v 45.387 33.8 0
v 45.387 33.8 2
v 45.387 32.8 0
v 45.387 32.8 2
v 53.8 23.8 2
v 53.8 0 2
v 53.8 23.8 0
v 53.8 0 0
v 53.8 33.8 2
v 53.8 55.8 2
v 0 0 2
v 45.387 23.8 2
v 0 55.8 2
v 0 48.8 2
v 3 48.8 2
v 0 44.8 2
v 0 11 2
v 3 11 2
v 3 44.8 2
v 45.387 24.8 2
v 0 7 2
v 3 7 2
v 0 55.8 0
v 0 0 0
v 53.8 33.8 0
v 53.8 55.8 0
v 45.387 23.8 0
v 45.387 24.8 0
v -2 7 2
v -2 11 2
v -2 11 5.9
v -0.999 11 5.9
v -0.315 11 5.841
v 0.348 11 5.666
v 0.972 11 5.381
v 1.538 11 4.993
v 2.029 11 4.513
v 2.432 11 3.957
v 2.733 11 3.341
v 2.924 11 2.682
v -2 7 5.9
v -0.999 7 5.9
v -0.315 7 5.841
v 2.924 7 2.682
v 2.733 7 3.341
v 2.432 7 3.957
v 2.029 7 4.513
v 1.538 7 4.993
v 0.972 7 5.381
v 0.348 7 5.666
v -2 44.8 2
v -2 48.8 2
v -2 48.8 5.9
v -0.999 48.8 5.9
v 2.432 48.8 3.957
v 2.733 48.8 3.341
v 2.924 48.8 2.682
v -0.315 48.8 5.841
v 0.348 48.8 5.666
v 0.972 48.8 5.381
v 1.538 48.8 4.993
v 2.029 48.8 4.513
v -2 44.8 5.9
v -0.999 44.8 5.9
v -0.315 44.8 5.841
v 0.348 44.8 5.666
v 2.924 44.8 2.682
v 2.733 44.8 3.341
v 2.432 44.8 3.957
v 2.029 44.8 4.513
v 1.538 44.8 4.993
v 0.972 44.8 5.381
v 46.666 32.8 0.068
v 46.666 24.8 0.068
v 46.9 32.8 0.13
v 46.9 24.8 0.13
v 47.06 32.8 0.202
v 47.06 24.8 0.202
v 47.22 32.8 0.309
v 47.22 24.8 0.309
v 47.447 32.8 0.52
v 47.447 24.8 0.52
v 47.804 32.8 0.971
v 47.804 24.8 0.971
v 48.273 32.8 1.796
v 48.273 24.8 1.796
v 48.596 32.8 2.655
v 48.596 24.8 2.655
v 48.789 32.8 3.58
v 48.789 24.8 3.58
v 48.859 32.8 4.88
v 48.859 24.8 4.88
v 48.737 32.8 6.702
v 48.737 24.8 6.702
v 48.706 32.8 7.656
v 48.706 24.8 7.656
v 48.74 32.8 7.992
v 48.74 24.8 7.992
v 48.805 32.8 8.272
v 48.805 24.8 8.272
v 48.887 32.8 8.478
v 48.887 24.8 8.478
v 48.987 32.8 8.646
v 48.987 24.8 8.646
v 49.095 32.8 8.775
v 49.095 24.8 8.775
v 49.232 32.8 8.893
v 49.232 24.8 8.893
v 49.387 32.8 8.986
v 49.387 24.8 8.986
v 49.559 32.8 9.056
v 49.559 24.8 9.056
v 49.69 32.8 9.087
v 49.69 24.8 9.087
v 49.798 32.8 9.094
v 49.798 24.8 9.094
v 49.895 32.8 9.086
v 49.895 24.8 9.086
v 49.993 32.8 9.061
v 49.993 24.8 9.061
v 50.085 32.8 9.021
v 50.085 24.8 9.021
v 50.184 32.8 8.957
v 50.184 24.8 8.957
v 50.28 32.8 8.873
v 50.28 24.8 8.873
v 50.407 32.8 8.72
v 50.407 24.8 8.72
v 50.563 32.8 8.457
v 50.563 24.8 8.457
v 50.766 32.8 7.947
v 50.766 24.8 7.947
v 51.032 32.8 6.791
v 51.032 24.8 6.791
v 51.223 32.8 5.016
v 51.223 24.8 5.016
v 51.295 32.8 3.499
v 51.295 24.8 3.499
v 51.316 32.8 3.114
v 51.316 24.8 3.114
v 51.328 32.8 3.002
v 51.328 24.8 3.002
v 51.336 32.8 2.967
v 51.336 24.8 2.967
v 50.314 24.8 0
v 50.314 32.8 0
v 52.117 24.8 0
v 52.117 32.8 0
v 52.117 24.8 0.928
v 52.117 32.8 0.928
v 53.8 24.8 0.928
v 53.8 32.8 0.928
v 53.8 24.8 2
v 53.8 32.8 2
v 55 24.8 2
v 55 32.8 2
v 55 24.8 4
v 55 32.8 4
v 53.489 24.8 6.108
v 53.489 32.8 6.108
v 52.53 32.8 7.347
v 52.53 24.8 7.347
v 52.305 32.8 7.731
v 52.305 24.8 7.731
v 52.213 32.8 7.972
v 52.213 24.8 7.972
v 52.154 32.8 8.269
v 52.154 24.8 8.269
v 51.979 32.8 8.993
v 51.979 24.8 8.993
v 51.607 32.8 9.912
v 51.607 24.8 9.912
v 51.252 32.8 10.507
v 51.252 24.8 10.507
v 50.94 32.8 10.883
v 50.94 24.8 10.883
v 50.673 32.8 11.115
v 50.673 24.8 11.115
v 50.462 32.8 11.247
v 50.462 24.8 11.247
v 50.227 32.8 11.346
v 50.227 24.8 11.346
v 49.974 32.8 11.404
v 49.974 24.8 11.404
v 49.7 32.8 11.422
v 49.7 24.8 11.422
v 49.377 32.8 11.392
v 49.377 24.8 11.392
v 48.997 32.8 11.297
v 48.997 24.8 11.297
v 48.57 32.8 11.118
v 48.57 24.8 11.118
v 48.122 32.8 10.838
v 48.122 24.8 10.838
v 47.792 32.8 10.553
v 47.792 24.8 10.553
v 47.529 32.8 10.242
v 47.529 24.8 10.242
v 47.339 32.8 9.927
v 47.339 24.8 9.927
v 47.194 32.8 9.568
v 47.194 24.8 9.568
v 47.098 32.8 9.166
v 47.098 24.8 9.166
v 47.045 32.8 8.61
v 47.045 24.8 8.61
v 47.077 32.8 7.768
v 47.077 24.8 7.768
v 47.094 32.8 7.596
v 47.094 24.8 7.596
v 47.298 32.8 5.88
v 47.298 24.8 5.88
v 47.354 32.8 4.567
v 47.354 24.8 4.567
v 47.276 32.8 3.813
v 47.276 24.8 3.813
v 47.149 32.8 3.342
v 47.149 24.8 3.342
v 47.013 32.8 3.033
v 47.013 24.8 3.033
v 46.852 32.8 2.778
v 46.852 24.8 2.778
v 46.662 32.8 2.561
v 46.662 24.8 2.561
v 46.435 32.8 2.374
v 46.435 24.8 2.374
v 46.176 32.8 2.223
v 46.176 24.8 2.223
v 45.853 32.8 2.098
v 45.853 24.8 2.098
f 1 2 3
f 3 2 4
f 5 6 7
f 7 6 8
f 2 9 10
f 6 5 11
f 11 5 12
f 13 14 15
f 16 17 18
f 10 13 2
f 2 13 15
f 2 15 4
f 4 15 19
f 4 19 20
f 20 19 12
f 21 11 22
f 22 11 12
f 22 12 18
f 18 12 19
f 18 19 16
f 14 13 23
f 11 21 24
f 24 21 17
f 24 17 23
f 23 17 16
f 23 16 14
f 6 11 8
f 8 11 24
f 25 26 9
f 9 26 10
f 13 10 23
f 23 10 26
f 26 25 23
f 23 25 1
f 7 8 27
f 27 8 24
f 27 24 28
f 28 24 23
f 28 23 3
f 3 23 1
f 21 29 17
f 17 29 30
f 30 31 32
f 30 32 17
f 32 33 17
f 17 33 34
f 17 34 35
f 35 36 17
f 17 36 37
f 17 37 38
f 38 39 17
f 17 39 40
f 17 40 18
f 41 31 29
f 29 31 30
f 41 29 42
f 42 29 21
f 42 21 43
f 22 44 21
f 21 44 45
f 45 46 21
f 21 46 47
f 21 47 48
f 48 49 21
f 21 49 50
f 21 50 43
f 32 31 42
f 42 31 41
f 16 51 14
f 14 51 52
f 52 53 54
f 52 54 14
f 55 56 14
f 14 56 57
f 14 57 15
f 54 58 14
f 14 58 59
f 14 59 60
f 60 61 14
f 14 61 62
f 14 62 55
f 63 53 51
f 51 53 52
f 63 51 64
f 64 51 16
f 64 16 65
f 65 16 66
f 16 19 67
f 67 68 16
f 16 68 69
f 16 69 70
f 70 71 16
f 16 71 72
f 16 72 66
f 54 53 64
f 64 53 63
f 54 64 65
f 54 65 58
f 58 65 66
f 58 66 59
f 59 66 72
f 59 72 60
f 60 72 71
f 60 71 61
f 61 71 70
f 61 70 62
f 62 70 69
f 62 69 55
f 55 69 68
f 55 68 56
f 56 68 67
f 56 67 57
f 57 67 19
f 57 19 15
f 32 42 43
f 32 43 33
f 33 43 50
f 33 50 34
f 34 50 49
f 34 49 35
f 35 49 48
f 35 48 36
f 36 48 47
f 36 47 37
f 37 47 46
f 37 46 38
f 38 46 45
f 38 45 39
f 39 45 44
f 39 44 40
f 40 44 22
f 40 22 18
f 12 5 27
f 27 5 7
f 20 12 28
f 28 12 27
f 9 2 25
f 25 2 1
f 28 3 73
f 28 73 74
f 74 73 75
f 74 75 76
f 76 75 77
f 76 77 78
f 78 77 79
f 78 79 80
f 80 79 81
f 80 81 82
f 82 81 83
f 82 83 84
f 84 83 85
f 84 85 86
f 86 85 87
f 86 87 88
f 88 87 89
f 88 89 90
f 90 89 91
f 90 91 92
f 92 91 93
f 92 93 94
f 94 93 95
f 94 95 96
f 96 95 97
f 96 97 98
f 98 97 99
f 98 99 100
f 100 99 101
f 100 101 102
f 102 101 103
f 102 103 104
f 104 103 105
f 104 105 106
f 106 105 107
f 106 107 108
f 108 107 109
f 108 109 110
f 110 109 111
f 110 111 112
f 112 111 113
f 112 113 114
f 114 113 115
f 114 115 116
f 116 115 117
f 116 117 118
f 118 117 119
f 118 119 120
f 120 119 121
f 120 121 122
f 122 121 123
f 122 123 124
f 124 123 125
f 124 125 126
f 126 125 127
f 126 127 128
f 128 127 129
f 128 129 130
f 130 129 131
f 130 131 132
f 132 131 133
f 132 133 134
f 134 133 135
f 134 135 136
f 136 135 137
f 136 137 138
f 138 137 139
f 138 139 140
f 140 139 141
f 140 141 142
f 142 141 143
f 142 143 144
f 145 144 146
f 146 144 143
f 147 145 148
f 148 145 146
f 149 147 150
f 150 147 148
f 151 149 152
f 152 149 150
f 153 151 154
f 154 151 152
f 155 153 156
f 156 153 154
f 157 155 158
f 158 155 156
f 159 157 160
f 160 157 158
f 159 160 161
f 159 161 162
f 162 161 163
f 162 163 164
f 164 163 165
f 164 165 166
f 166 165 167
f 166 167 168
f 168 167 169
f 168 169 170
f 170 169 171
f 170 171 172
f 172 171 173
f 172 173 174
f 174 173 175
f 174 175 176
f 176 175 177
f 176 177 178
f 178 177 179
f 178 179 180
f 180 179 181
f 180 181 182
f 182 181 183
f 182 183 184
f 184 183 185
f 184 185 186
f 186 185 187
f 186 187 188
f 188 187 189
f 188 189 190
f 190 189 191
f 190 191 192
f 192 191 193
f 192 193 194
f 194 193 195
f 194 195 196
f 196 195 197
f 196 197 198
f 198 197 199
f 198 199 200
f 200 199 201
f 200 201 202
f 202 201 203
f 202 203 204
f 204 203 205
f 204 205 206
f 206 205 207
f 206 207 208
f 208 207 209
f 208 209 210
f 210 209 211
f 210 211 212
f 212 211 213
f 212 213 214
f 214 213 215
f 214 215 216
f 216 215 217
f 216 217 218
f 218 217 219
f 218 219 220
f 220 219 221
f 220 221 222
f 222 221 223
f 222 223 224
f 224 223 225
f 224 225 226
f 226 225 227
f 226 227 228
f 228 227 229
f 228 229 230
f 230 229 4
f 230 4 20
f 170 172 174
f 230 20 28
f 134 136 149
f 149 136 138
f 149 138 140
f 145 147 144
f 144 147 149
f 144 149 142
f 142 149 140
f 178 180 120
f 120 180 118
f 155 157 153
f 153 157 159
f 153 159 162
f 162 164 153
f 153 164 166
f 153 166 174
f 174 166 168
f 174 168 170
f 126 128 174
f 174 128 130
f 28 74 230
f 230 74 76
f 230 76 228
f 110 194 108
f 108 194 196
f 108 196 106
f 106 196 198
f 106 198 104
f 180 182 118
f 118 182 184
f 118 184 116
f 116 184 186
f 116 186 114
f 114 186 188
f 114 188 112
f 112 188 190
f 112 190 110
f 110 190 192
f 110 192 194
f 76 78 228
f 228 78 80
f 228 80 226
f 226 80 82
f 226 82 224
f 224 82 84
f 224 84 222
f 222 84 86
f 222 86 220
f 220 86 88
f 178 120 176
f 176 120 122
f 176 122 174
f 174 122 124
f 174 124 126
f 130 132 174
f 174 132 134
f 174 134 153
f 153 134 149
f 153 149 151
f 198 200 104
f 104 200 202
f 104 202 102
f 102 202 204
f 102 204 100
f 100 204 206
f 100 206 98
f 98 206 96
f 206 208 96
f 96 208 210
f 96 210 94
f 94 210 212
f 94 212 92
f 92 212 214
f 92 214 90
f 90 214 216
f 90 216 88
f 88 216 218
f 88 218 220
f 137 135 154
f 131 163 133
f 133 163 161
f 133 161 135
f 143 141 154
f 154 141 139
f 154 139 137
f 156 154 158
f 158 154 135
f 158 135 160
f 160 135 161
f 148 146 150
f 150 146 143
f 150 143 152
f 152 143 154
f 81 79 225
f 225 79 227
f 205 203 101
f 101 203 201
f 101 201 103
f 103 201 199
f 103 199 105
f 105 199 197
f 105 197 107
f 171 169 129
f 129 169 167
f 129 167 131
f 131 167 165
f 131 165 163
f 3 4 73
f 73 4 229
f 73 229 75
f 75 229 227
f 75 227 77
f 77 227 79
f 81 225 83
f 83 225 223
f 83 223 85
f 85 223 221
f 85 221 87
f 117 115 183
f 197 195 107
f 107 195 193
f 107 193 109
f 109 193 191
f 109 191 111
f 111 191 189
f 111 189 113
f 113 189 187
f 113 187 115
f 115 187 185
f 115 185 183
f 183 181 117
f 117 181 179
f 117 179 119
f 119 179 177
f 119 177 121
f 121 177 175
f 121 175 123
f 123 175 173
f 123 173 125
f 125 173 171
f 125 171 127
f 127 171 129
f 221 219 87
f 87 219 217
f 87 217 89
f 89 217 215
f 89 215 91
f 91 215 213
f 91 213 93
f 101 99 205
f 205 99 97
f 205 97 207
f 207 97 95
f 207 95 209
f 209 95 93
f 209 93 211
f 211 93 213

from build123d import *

# Parameters (mm, degrees)
ESQUISSE1_W             = 53.8
ESQUISSE1_H             = 55.8
BOSS_EXTRU_1_DEPTH      = 2
ESQUISSE3_W             = 5
ESQUISSE3_H             = 4
BOSS_EXTRU_2_DEPTH      = 3.9
CONG_1_R                = 4
ESQUISSE4_W             = 8.412600453
ESQUISSE4_H             = 10
ENL_V_MAT_EXTRU_1_DEPTH = 7.8
BOSS_EXTRU_3_START      = 1
BOSS_EXTRU_3_DEPTH      = 8


with BuildPart() as part:
    # Esquisse1 → Boss.-Extru.1 (new body)
    with BuildSketch(Plane.XY):
        with Locations((26.9, 27.9)):
            Rectangle(ESQUISSE1_W, ESQUISSE1_H)
    extrude(amount=BOSS_EXTRU_1_DEPTH)

    # Esquisse3 → Boss.-Extru.2 (add)
    with BuildSketch(Plane.XY.offset(2)):
        with Locations((0.5, 9)):
            Rectangle(ESQUISSE3_W, ESQUISSE3_H)
        with Locations((0.5, 46.8)):
            Rectangle(ESQUISSE3_W, ESQUISSE3_H)
    extrude(amount=BOSS_EXTRU_2_DEPTH)

    # Congé1
    # the kernel refuses this fillet: 4 mm, written as the material it takes off along each edge
    with BuildSketch(Plane(origin=(3, 58.796874512, 5.9), x_dir=(0, 0, -1), z_dir=(0, -1, 0)), Plane(origin=(3, 20.996874512, 5.9), x_dir=(0, 0, -1), z_dir=(0, -1, 0))) as cong_1_piece_1:
        with BuildLine():
            CenterArc((4, -3.998749805), CONG_1_R, 91.432543738, 88.567456262)
            Line((0, -3.998749805), (-0.08, -3.998749805))
            Line((-0.08, -3.998749805), (-0.08, 0))
            Line((-0.08, 0), (0, 0.08))
            ThreePointArc((0, 0.08), (1.95, 0.08), (3.898, 0.079974996))
            Line((3.898, 0.079974996), (3.9, 0))
        make_face()
    extrude(amount=23.993749023, mode=Mode.SUBTRACT)

    # Esquisse4 → Enlèv. mat.-Extru.1 (cut)
    with BuildSketch(Plane.XY.offset(2)):
        with Locations((49.593699774, 28.8)):
            Rectangle(ESQUISSE4_W, ESQUISSE4_H)
    extrude(amount=-ENL_V_MAT_EXTRU_1_DEPTH, mode=Mode.SUBTRACT)

    # Esquisse5 → Boss.-Extru.3 (add)
    with BuildSketch(Plane.XZ.offset(-33.8).offset(BOSS_EXTRU_3_START)):
        with BuildLine():
            Line((52.116537942, 0.927515673), (52.116537942, 0))
            Line((52.116537942, 0), (50.313981281, 0))
            Line((50.313981281, 0), (51.336356936, 2.967308385))
            add(Edge.make_bspline(
                [(45.387399547, 0), (46.455010673, 0.030774957), (47.125595065, -0.021344745), (48.899614795, 2.480533697), (48.957306387, 5.368692409), (48.491359116, 8.602707598), (50.081924854, 9.3139155), (51.361168313, 7.44142707), (51.2508337, 3.223878094), (51.336356936, 2.967308385)],
                knots=[0, 0, 0, 0, 0.100124677, 0.177204474, 0.427983887, 0.5870082, 0.626058964, 0.727290756, 1, 1, 1, 1], degree=3))
            Line((45.387399547, 0), (45.387399547, 2))
            add(Edge.make_bspline(
                [(45.387399547, 2), (47.571691044, 2.281668527), (47.414765021, 6.03590405), (46.588181158, 10.356210638), (50.843729596, 12.311121356), (52.448069251, 7.895489544), (52.08083827, 7.808250706), (53.488596921, 6.108354647)],
                knots=[0, 0, 0, 0, 0.293067652, 0.50878028, 0.665230689, 0.849911902, 1, 1, 1, 1], degree=3))
            Line((53.488596921, 6.108354647), (55, 4))
            Line((55, 4), (55, 2))
            Line((55, 2), (53.8, 2))
            Line((53.8, 2), (53.8, 0.927515673))
            Line((53.8, 0.927515673), (52.116537942, 0.927515673))
        make_face()
    extrude(amount=BOSS_EXTRU_3_DEPTH)


solid = part.part
